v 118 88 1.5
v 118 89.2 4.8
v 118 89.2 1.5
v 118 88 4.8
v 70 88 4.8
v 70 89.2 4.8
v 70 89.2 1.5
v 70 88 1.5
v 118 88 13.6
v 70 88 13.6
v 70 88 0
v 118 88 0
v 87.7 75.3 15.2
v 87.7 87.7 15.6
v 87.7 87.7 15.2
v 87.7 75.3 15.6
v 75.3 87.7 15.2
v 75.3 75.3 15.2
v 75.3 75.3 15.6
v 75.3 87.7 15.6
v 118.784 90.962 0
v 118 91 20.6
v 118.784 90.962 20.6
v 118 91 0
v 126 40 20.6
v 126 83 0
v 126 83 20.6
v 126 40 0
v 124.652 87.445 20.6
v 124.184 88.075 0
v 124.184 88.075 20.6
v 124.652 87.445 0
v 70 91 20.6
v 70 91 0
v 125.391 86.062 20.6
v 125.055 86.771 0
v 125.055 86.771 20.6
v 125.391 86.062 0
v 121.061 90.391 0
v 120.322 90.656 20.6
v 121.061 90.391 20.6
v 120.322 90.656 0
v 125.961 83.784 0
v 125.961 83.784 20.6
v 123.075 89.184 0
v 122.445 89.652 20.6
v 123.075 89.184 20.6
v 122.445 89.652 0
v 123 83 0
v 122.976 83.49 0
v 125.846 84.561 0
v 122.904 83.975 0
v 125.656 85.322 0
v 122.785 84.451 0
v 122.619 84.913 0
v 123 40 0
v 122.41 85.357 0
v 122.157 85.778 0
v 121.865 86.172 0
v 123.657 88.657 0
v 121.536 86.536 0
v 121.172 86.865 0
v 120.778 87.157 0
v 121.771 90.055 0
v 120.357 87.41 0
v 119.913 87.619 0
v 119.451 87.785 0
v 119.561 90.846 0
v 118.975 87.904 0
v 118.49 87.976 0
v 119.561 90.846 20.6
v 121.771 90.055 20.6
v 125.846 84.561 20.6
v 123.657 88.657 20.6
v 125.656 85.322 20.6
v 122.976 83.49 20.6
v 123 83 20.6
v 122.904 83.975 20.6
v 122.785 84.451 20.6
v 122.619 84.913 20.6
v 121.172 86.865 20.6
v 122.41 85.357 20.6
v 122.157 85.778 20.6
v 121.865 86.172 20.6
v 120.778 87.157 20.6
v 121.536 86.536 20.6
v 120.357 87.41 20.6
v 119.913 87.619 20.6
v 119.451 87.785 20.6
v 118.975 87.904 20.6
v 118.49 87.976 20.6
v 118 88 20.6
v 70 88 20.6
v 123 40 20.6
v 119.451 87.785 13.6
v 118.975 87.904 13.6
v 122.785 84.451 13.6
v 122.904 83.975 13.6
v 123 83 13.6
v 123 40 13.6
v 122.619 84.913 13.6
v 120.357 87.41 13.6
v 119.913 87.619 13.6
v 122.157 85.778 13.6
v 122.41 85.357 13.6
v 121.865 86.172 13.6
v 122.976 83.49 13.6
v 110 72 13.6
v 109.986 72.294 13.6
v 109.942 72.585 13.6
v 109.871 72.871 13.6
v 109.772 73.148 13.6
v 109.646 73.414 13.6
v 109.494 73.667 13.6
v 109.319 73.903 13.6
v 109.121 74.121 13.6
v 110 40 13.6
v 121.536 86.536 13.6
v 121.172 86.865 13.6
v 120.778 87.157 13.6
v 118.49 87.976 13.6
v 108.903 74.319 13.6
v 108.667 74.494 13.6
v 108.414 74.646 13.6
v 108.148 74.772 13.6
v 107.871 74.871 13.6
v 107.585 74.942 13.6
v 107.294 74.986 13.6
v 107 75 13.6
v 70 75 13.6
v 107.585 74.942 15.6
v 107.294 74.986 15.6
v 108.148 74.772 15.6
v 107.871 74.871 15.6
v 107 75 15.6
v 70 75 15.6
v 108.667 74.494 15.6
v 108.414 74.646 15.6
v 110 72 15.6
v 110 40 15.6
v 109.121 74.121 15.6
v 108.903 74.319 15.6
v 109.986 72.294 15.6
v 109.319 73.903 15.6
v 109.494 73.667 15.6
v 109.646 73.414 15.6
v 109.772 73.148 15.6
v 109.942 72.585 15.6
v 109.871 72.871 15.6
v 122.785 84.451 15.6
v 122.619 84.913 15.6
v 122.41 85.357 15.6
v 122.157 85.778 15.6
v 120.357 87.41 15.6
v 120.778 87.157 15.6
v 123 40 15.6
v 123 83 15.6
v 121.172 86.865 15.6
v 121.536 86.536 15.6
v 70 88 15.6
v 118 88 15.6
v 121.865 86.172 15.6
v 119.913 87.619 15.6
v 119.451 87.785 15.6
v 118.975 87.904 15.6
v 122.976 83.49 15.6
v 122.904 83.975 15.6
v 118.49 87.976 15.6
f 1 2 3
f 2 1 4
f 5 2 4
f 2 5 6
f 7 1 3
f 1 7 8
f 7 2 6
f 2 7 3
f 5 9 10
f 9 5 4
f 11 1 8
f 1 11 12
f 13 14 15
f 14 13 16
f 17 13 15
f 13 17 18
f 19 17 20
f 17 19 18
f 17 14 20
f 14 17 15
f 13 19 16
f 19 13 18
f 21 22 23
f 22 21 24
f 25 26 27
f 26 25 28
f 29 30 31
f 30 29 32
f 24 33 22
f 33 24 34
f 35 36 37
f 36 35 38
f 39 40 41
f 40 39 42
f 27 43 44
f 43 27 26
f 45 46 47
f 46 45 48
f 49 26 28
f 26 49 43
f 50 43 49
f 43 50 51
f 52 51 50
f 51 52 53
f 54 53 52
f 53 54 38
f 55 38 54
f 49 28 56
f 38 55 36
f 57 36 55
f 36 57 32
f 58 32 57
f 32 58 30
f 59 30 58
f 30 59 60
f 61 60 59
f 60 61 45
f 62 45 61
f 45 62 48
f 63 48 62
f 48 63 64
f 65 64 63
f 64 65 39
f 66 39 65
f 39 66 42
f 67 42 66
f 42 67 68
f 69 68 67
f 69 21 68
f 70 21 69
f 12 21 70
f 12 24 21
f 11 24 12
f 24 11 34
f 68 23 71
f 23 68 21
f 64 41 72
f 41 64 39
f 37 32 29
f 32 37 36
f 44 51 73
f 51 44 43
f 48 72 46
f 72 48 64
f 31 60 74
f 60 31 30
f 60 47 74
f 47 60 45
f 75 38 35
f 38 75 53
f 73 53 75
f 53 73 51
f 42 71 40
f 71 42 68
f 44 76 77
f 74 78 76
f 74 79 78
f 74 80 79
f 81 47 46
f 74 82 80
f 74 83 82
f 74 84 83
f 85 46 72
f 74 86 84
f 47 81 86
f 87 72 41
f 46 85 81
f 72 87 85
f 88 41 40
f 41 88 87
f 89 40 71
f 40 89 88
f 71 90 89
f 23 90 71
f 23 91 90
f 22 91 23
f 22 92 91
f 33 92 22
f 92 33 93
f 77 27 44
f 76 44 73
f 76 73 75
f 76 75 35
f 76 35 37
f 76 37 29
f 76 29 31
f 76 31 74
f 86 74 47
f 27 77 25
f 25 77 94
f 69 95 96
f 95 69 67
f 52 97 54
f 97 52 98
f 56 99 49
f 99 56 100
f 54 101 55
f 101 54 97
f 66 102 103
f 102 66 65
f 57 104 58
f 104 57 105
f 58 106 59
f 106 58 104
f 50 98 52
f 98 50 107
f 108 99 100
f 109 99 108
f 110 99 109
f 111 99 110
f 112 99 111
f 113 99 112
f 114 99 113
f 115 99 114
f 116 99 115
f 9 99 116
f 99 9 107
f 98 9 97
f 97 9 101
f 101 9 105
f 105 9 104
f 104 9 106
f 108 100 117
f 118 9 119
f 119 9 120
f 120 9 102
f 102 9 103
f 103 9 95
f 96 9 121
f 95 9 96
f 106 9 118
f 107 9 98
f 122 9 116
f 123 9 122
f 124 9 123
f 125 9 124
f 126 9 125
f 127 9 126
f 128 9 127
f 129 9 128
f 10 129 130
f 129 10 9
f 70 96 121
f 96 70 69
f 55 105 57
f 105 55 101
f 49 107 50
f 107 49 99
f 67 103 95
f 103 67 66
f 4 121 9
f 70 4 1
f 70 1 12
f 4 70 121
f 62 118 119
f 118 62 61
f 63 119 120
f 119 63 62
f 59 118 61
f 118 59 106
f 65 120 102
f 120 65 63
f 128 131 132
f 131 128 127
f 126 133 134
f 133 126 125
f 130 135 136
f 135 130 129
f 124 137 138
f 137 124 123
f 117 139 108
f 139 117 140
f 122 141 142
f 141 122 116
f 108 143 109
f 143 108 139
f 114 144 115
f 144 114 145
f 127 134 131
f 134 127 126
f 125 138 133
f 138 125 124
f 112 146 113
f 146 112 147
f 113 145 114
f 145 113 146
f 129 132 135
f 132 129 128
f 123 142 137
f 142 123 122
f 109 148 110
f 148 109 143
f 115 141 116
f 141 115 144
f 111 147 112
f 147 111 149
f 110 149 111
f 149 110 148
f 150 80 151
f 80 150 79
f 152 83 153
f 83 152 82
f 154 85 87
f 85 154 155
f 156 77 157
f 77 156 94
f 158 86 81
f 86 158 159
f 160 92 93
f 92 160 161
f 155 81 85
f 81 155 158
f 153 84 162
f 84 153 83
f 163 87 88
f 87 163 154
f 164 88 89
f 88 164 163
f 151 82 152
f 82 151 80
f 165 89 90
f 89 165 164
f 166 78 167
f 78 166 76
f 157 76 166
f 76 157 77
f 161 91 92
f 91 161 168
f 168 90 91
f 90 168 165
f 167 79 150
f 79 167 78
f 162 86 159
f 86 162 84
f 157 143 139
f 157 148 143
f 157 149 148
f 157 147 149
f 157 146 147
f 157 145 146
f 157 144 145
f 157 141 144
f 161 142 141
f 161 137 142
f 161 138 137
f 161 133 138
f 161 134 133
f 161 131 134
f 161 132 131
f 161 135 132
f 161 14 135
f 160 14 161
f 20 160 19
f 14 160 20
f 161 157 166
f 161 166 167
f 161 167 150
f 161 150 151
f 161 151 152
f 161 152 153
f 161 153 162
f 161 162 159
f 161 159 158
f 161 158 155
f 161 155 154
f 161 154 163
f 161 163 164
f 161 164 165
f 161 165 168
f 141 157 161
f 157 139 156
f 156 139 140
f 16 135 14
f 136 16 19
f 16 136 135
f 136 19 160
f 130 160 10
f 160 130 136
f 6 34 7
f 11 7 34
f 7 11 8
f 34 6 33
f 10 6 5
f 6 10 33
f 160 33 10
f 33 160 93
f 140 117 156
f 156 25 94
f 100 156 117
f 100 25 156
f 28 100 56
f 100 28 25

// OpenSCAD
// file: surface-go-window-frame.scad
// Window frame for the Surface Go (1st gen) shop screen.
//
// Glass side: front lip + skirt. Four 3M Dual Lock pads sit at
// (+-pad_c, +-pad_c) - the same spots in landscape and portrait, so the
// frame can be pulled off the glass and snapped back rotated 90 degrees.
// Room side: open back; two flexible bars snap into grooves to hold the tablet.
//
// Print orientation as modelled: back (room side) down on the bed, glass side up.
// Supports only under the front lip (it faces the tablet bezel, hidden).
// Units mm. Landscape as seen from the room: x right, y up, z towards the glass.
//
// Parts: this file renders the frame. surface-go-back-bar.scad (print 2) and
// surface-go-fit-test.scad reuse it via use<>, so change dimensions here only.
//
// Licence: CC BY-NC 4.0

/* [Tablet - Surface Go 1 is 245 x 175 x 8.3] */
tab_w = 245.0;
tab_h = 175.0;
tab_t = 8.3;
clear = 0.5;           // per side in the pocket
tab_r = 5.0;           // pocket corner radius (keep <= tablet's corner radius)

/* [Frame] */
wall = 3.0;            // side wall thickness
lip = 2.0;             // front lip thickness (glass side)
lip_over = 13.0;       // how far the lip covers the bezel (screen starts ~17 in)

/* [Back retention bars] */
ret = 1.5;             // wall material behind the groove (holds the bar in)
bar_t = 3.0;
groove_h = bar_t + 0.3;
groove_d = 1.2;        // groove depth into the long walls
bar_w = 14.0;
bar_play = 0.4;        // bar is this much shorter than groove-to-groove
tab_play = 0.5;        // front-back slack for the tablet

/* [3M Dual Lock] */
dl_mated = 5.7;        // measure your mated pair incl. both adhesives!
pad = 12.0;            // pad square size
pad_c = 81.5;          // pad centre offset from frame centre (both axes)
pad_recess = 0.4;      // shallow locating pocket for each pad
skirt_gap = 0.3;       // skirt stops this short of the glass

/* [Cutouts - landscape: right edge = Surface Connect, top-left = buttons] */
cable_y = [-55, 25];   // slot in the right wall, y range
btn_x = [-112, -68];   // slot in the top wall, x range (power + volume)

$fn = 64;

// --- derived ---------------------------------------------------------------
pw = tab_w + 2 * clear;          // pocket 246 x 176
ph = tab_h + 2 * clear;
ow = pw + 2 * wall;              // outer 252 x 182
oh = ph + 2 * wall;
o_r = tab_r + wall;

z_groove0 = ret;
z_tab0 = ret + groove_h;
z_lip0 = z_tab0 + tab_t + tab_play;
z_lip1 = z_lip0 + lip;
skirt = dl_mated - pad_recess - skirt_gap;
z_top = z_lip1 + skirt;

win_w = pw - 2 * lip_over;       // 220 x 150 window (screen ~211 x 141)
win_h = ph - 2 * lip_over;

// sanity: pad must sit inside the lip band, clear of the skirt
assert(pad_c - pad / 2 >= ph / 2 - lip_over, "pad overlaps the screen window");
assert(pad_c + pad / 2 <= ph / 2, "pad overlaps the skirt");

echo(str("outer ", ow, " x ", oh, " x ", z_top, "  window ", win_w, " x ", win_h));

// --- helpers ---------------------------------------------------------------
module rrect(w, h, r) {
    offset(r = r) square([w - 2 * r, h - 2 * r], center = true);
}

module box(x0, x1, y0, y1, z0, z1) {
    translate([x0, y0, z0]) cube([x1 - x0, y1 - y0, z1 - z0]);
}

// --- parts -----------------------------------------------------------------
module frame() {
    difference() {
        linear_extrude(z_top) rrect(ow, oh, o_r);

        // tablet pocket (open back)
        translate([0, 0, -0.01]) linear_extrude(z_lip0 + 0.01) rrect(pw, ph, tab_r);
        // screen window through the lip
        translate([0, 0, -1]) linear_extrude(z_top + 2) rrect(win_w, win_h, 3);
        // space inside the skirt, in front of the lip
        translate([0, 0, z_lip1]) linear_extrude(skirt + 1) rrect(pw, ph, tab_r);

        // bar grooves along the full length of both long walls
        for (s = [1, -1])
            box(-pw / 2 + tab_r, pw / 2 - tab_r,
                min(s * ph / 2, s * (ph / 2 + groove_d)),
                max(s * ph / 2, s * (ph / 2 + groove_d)),
                z_groove0, z_groove0 + groove_h);

        // Surface Connect slot (right wall), open from the back up to the lip
        box(pw / 2 - 1, ow / 2 + 1, cable_y[0], cable_y[1], -1, z_lip0);
        // button access (top wall)
        box(btn_x[0], btn_x[1], ph / 2 - 1, oh / 2 + 1, -1, z_lip0);

        // Dual Lock locating recesses on the lip's glass face
        for (sx = [1, -1], sy = [1, -1])
            translate([sx * pad_c, sy * pad_c, 0])
                box(-pad / 2 - 0.2, pad / 2 + 0.2, -pad / 2 - 0.2, pad / 2 + 0.2,
                    z_lip1 - pad_recess, z_lip1 + 1);
    }
}

module bar() {
    bar_len = ph + 2 * groove_d - bar_play;
    linear_extrude(bar_t) rrect(bar_w, bar_len, 2);
    linear_extrude(bar_t + 4) rrect(bar_w, 20, 2);   // finger tab to pull it out
}

// one corner of the frame, ~20 min print: check the tablet corner, lip and bar fit
module test_corner() {
    intersection() {
        frame();
        box(70, 130, 40, 95, -1, 30);
    }
}

frame();
// main file
// One corner of the Surface Go window frame (~20 min print).
// Print first: check the tablet corner, lip overlap and bar groove fit.
// Dimensions come from surface-go-window-frame.scad.
use <surface-go-window-frame.scad>

test_corner();
